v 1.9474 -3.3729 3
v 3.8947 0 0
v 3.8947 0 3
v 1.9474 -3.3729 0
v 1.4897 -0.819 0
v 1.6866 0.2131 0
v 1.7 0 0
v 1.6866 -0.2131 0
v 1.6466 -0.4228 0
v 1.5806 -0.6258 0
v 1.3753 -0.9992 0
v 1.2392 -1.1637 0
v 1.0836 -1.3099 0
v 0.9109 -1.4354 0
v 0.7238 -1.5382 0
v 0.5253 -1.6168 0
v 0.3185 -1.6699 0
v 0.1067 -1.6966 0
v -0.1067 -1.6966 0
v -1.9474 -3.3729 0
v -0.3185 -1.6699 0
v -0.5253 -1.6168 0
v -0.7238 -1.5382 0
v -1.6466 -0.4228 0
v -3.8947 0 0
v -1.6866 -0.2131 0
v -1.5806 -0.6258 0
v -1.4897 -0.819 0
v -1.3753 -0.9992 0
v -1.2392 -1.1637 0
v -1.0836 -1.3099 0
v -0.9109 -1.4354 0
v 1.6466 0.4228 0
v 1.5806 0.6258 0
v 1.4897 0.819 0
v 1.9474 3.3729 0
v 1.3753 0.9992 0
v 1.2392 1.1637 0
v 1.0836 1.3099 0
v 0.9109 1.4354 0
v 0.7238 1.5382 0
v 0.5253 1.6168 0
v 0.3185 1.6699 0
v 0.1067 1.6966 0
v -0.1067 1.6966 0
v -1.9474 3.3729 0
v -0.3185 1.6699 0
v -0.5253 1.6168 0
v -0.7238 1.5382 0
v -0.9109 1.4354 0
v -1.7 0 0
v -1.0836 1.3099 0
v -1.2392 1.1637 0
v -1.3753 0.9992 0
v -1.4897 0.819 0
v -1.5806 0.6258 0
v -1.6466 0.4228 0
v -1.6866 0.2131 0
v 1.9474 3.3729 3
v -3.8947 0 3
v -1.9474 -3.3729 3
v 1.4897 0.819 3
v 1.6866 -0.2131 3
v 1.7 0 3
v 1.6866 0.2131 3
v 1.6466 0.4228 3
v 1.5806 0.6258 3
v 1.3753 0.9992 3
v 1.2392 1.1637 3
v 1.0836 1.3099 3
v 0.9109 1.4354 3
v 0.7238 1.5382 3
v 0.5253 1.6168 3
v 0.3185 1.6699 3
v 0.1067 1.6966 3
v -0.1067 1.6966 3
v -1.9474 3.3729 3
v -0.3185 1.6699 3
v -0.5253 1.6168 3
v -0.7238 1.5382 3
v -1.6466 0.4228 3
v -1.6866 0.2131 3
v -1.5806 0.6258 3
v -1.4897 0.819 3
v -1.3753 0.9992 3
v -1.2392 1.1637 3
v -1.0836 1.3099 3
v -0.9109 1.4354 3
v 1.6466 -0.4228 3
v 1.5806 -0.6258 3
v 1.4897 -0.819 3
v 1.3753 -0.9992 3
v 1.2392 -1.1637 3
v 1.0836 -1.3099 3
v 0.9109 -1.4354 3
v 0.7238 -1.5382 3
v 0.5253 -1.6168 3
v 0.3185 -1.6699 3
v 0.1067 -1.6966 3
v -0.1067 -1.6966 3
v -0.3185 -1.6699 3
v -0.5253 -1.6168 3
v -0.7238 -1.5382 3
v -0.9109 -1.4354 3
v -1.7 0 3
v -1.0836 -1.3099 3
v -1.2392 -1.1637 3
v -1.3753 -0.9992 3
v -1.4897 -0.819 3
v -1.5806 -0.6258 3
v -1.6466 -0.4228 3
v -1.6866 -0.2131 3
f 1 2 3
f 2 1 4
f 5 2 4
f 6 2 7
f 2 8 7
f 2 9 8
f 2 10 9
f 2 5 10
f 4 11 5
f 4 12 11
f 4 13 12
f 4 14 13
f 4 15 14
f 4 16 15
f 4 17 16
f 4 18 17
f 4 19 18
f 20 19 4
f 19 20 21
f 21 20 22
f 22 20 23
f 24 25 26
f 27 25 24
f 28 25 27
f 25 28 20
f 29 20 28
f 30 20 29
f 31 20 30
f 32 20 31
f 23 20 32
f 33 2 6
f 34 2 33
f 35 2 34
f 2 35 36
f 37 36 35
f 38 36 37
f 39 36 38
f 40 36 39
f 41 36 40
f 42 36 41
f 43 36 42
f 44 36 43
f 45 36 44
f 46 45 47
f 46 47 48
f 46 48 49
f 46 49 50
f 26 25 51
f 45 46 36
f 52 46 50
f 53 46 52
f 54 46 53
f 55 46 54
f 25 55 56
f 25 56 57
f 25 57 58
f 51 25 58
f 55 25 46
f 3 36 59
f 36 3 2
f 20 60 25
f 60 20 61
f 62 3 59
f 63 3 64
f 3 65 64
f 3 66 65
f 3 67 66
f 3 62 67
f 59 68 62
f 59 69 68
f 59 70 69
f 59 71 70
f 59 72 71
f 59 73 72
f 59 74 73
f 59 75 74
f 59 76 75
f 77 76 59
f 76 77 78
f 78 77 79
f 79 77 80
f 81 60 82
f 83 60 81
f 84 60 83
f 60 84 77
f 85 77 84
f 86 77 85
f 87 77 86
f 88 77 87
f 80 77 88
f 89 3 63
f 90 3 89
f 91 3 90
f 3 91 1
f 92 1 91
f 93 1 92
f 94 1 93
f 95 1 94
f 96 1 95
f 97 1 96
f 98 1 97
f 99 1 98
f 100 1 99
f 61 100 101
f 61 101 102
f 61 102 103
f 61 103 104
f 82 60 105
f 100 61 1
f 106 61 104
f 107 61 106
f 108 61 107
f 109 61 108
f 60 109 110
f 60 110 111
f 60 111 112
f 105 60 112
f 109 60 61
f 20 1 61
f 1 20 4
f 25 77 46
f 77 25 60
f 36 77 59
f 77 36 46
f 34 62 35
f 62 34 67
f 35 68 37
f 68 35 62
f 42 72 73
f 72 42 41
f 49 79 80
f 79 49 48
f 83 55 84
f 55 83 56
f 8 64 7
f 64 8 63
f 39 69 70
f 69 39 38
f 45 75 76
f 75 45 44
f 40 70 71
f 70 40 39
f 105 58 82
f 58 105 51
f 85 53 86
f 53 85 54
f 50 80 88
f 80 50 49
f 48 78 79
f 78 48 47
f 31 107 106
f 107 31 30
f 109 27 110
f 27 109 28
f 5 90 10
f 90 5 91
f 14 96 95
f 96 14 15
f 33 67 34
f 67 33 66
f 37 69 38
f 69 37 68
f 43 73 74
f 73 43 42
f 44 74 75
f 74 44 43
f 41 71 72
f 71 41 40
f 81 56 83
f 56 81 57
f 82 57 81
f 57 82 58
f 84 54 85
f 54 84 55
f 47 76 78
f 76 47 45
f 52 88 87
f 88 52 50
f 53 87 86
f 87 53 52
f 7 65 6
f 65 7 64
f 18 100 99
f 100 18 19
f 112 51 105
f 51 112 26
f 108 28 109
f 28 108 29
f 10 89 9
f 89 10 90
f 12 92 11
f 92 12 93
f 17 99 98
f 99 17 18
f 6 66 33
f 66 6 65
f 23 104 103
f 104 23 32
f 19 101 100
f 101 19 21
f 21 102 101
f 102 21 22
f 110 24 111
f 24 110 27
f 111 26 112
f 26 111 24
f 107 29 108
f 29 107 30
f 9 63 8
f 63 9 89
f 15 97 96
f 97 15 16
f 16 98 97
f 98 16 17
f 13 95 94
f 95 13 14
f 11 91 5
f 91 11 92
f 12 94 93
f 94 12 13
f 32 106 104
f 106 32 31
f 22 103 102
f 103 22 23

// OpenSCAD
// Generated by SolidPython 1.1.3 on 2023-03-13 20:55:07
$fn = 50;


difference() {
	union() {
		translate(v = [0, 0, 0]) {
			rotate(a = [0, 0, 0]) {
				translate(v = [0, 0, 0]) {
					rotate(a = [0, 0, 0]) {
						linear_extrude(height = 3) {
							polygon(points = [[3.8947500000, 0.0000000000], [1.9473750000, 3.3729524414], [-1.9473750000, 3.3729524414], [-3.8947500000, 0.0000000000], [-1.9473750000, -3.3729524414], [1.9473750000, -3.3729524414]]);
						}
					}
				}
			}
		}
	}
	union() {
		translate(v = [0, 0, -10]) {
			rotate(a = [0, 0, 0]) {
				cylinder(h = 20, r = 1.7000000000);
			}
		}
	}
}
/***********************************************
*********      SolidPython code:      **********
************************************************
 
from solid import *
import os
import subprocess

import oomB

import opsc_library_gen

mode = "laser"
#mode = "3d_print"

defined_objects = {}

radius_dict = {}
countersunk_dict = {}


def set_mode(m):
    global mode
    mode = m
    radius_dict['M6'] = 6.5/2
    radius_dict['M3'] = 3.3/2
    if mode == "laser":
        radius_dict['M6'] = 6/2
        radius_dict['M3'] = 3/2

    countersunk_dict['M3'] = {}
    countersunk_dict['M3']['little_rad'] = radius_dict['M3']
    countersunk_dict['M3']['big_rad'] = (5.5+0.6)/2
    if mode == "laser":
        countersunk_dict['M3']['big_rad'] = (4.75+0.6)/2
        countersunk_dict['M3']['little_rad'] = (4.75+0.6)/2

    countersunk_dict['M3']['height'] = 1.7


def opsc_make_object(filename, objects, save_type="none",resolution=50, layers = 1, tilediff = 200, mode="laser", overwrite=True):
    if overwrite or not os.path.exists(filename):
        set_mode(mode)
        save_type = save_type.lower()
        os.makedirs(os.path.dirname(filename), exist_ok=True)
        final_object = opsc_get_object(objects, mode = mode)
        # Save the final object to the specified filename    
        scad_render_to_file(final_object, filename, file_header='$fn = %s;' % resolution, include_orig_code=True)
        if save_type == "all":
            saveToAll(filename)
        elif save_type == "dxf":
            saveToDxf(filename)
        if mode == "laser":
            filename_laser = filename.replace(".scad","-flat.scad")
            scad_render_to_file(getLaser(final_object, layers=layers, tilediff=tilediff), filename_laser, file_header='$fn = %s;' % resolution, include_orig_code=True)
            if save_type == "all":
                saveToAll(filename_laser)
            elif save_type == "dxf":
                saveToDxf(filename_laser)


def opsc_get_object(objects, mode = "laser"):
    # Create the solidpython objects only include the positive objects and if they don't have inclusion or their inclusion is either all or mode
    # Initialize an empty list to store the results
    positive_objects = []

    # Iterate over the "objects" list
    for obj in objects:
        # Check if the current object has a "type" key with a value of "positive"
        if obj['type'] == 'positive':
            # Check if the current object has an "inclusion" key and its value matches "mode",
            # or if the current object does not have an "inclusion" key at all
            if not 'inclusion' in obj or obj['inclusion'] == "all" or obj['inclusion'] == mode:
                # Call the "get_opsc_item" function with the current object as an argument
                opsc_item = get_opsc_item(obj)
                # Add the result to the "positive_objects" list
                positive_objects.append(opsc_item)
# Initialize an empty list to store the results
    negative_objects = []

    # Iterate over the "objects" list
    for obj in objects:
        # Check if the current object has a "type" key with a value of "negative"
        if obj['type'] == 'negative':
            # Check if the current object has an "inclusion" key and its value matches "mode",
            # or if the current object does not have an "inclusion" key at all
            if not 'inclusion' in obj or obj['inclusion'] == "all" or obj['inclusion'] == mode:
                # Call the "get_opsc_item" function with the current object as an argument
                opsc_item = get_opsc_item(obj)
                # Add the result to the "negative_objects" list
                negative_objects.append(opsc_item)
    
    #positive_objects = [get_opsc_item(obj) for obj in objects if obj['type'] == 'positive']
    #negative_objects = [get_opsc_item(obj) for obj in objects if obj['type'] == 'negative']
    # Union the positive objects
    positive_object = union()(*positive_objects)
    # Union the negative objects
    negative_object = union()(*negative_objects)
    # Create the final object by subtracting the negative objects from the positive objects
    return difference()(positive_object, negative_object)

def get_opsc_item(params):
    # A dictionary to map radius string values to numerical values
    #radius_dict = {'small': 5, 'medium': 10, 'large': 15}
    # An array of function names for basic shapes
    basic_shapes = ['cube', 'sphere', 'cylinder']
    
    # An array of function names for other shapes
    other_shapes = ['hole', 'slot', 'rounded_rectangle', 'countersunk', 'polyg']
    


    # Convert radius to r if present, and remove radius from the params dictionary
    if 'radius' in params:
        if isinstance(params['radius'], str):
            # Use the radius_dict to map the radius string value to a numerical value
            params['r'] = radius_dict[params['radius']]
        else:
            params['r'] = params['radius']
        del params['radius']
    

    # Check if the object type is a basic shape
    if params['shape'] in basic_shapes:
        # Remove shape and unexpected dictionary values
        allowed_keys = {'size', 'r', 'r1', 'r2', 'd', 'h', 'rw', 'rh', 'dw', 'dh'}
        shape_params = {k: v for k, v in params.items() if k in allowed_keys}

        #params['m'] = "#"
        ###split for adding modifier
        try:
            m = params['m']
            func = globals()[params['shape']]
            return_value = get_opsc_transform(params,func(**shape_params))
            return_value = (return_value).set_modifier(m)
            return return_value
        except KeyError as e:
            return get_opsc_transform(params,globals()[params['shape']](**shape_params))
        
    elif params['shape'] == 'polygon':
        # Remove shape and unexpected dictionary values
        h  = params['height']
        allowed_keys = {'points'}
        shape_params = {k: v for k, v in params.items() if k in allowed_keys}

        # Call the corresponding function for the shape parameter, using ** notation to pass the shape_params dictionary as keyword arguments
        params["rot"] = [0,0,0]        
        try:
            m = params['m']
            func = globals()[params['shape']]
            return_value = get_opsc_transform(params,linear_extrude(h)(globals()[params['shape']](**shape_params)))
            return_value = (return_value).set_modifier(m)
            return return_value
        except KeyError as e:
            return_value = get_opsc_transform(params,linear_extrude(h)(globals()[params['shape']](**shape_params)))
            return_value = (return_value)
            return return_value


    # If the object type is not a basic shape, check if it's a defined object or one of the other shapes
    elif params['shape'] in other_shapes:
        # Call the corresponding function for the shape parameter, passing the params dictionary as an argument
        p2 = copy.deepcopy(params)
        p2["pos"] = [0,0,0]
        return get_opsc_transform(params,globals()[params['shape']](p2))
    
    # If the object is not a basic shape or a defined object, try to import it from a .scad file
    else:
        obj = defined_objects[params['shape']]
        return get_opsc_transform(params,obj)

def get_opsc_transform(params, solid_obj):
    # Rotate the object based on the 'rot' field in the params dictionary, or the 'rotX', 'rotY', and 'rotZ' fields if 'rot' is not present
    rot = params.get('rot', [])
    if rot:
        rotX, rotY, rotZ = rot
    else:
        rotX = params.get('rotX', 0)
        rotY = params.get('rotY', 0)
        rotZ = params.get('rotZ', 0)
    solid_obj = rotate([rotX, rotY, rotZ])(solid_obj)

    # Translate the object based on the 'pos' field in the params dictionary, or the 'x', 'y', and 'z' fields if 'pos' is not present
    pos = params.get('pos', [])
    if pos:
        x, y, z = pos
    else:
        x = params.get('x', 0)
        y = params.get('y', 0)
        z = params.get('z', 0)
    solid_obj = translate([x, y, z])(solid_obj)
    return solid_obj


import random

def opsc_easy_array(type, shape, repeats, pos_start, shift_arr, **kwargs):
    for i in range(0,3):
        repeats.append(1)
        pos_start.append(0)
        shift_arr.append(0)
    return_objects = []

    for x in range(0,repeats[0]):
        for y in range(0,repeats[1]):
            for z in range(0,repeats[2]):
                return_objects.append(opsc_easy(type, shape, pos=[pos_start[0]+x*shift_arr[0],pos_start[1]+y*shift_arr[1],pos_start[2]+z*shift_arr[2]], **kwargs))
    return return_objects                



def opsc_easy(type, shape, **kwargs):
    obj = {
        'type': type,
        'shape': shape
    }
    for param in ['size', 'r', 'r1', 'r2', 'd', 'h', 'rw', 'rh', 'dw', 'dh', 'pos', 'x', 'y', 'z', 'rot', 'rotX', 'rotY', 'rotZ', "w", "inclusion", 'sides', 'height', "m"]:
        if param in kwargs:
            obj[param] = kwargs[param]
    return obj

def hole(params):
    p2 = copy.deepcopy(params)  
    # Check if the radius is a string and replace it with the corresponding value from the dictionary
    if isinstance(p2['r'], str):
        p2['r'] = radius_dict[p2['r']]
    
    # Set the height to 100 if not specified
    if 'h' not in p2:
        p2['h'] = 100
        p2["pos"] = [0,0,-50]
    p2["center"] = True
    # Create the cylinder object
    p2["shape"] = "cylinder"
    p2["type"] = "positive"

    return get_opsc_item(p2)

import copy

def countersunk(params):
    p2 = copy.deepcopy(params)
    counter_rad = p2['r']
    p2['r'] = radius_dict[p2['r']]
    hp = copy.deepcopy(p2)
    hp["type"] = "positive"
    hp["shape"] = "hole"
    del hp["rot"]
    hol = get_opsc_item(hp)
    
    cp = copy.deepcopy(p2)
    cp["h"] = countersunk_dict[counter_rad]["height"]
    cp["r2"] = countersunk_dict[counter_rad]["little_rad"]
    cp["r1"] = countersunk_dict[counter_rad]["big_rad"]
    del cp["r"]
    del cp["rot"]
    cp["type"] = "positive"
    cp["shape"] = "cylinder"
    cp["pos"] = [0,0,0]

    top = get_opsc_item(cp)
    return union()(hol,top)



def slot(params):  
    p2 = copy.deepcopy(params) 
    if isinstance(p2['r'], str):
        p2['r'] = radius_dict[p2['r']]
    p2["type"] = "positive"
    p2["shape"] = "hole"
    del p2["rot"]
    p2["pos"] = [0,0,0]
    left = copy.deepcopy(p2)
    right = copy.deepcopy(p2)
    left["pos"][0] = p2["w"] / 2 - p2["r"] 
    
    right["pos"][0] = -p2["w"] / 2 + p2["r"] 
    pass
    leftObj = get_opsc_item(left)
    rightObj = get_opsc_item(right)
    return hull()(leftObj, rightObj)

def rounded_rectangle(params):   
    p2 = copy.deepcopy(params) 
    p2["h"] = p2["size"][2]
    p2["pos"] = p2.get("pos", [0, 0, 0]) 
    p2["type"] = "positive"
    p2["shape"] = "hole"
    p2["pos"] = [0,0,0]
    
    if 'rot' in p2:
        del p2["rot"]   
    if 'r' not in p2:
        p2["r"] = 5 
    tl = copy.deepcopy(p2)
    tr = copy.deepcopy(p2)
    bl = copy.deepcopy(p2)
    br = copy.deepcopy(p2)
    tl["pos"][0] = -(p2["size"][0] - p2["r"]*2)/2
    tl["pos"][1] = (p2["size"][1] - p2["r"]*2)/2
    tr["pos"][0] = (p2["size"][0] - p2["r"]*2)/2
    tr["pos"][1] = (p2["size"][1] - p2["r"]*2)/2
    bl["pos"][0] = -(p2["size"][0] - p2["r"]*2)/2
    bl["pos"][1] = -(p2["size"][1] - p2["r"]*2)/2
    br["pos"][0] = (p2["size"][0] - p2["r"]*2)/2
    br["pos"][1] = -(p2["size"][1] - p2["r"]*2)/2
    del tl["size"]
    del tr["size"]
    del bl["size"]
    del br["size"]
    tlo = get_opsc_item(tl)
    tro = get_opsc_item(tr)
    blo = get_opsc_item(bl)
    bro = get_opsc_item(br)    
    return hull()(tlo, tro, blo, bro)



def polyg(params):
    p2 = copy.deepcopy(params) 
    p2["type"] = "positive"
    p2["shape"] = "polygon"
    p2["pos"] = [0,0,0]
    sides = p2["sides"]
    radius = p2["r"]    
    angles = [i * 360 / sides for i in range(sides)]
    points = regular_polygon(sides, radius)
    
    p2["points"] = points
    return get_opsc_item(p2)

import math

def regular_polygon(num_sides, radius):
    # Calculate the angle between each side
    angle = 2 * math.pi / num_sides

    # Calculate the points of the polygon
    points = []
    for i in range(num_sides):
        x = radius * math.cos(i * angle)
        y = radius * math.sin(i * angle)
        points.append((x, y))
    return points

def import_scad_object(filename):
    # Import the .scad file and convert it to a solidpython object
    #filename = "parts"
    obj = import_scad(filename)
    return obj.main()



import os
import solid as solidpython

# A dictionary to store the defined objects


def load_scad_objects():
    opsc_library_gen.gen_library(defined_objects)

import random

def test(num_objects):
    objects = []
    for i in range(num_objects):
        # Choose a random shape
        #shape = random.choice(['cube', 'sphere', 'cylinder', 'hole', 'slot', "rounded_rectangle"])
        shape = random.choice(["rounded_rectangle"])

        # Choose a random type
        type = random.choice(['positive', 'negative'])
        
        # Create an empty object dictionary
        obj = {'shape': shape, 'type': type}
        
        # Set shape-specific parameters
        if obj['shape'] in ['cube']:
            obj['size'] =  [random.uniform(5, 15), random.uniform(5, 15), random.uniform(5, 15)]
        if obj['shape'] in ['rounded_rectangle']:
            obj['size'] =  [random.uniform(5, 15), random.uniform(5, 15), random.uniform(5, 15)]
            obj['r'] = random.uniform(0.5, 5)
        elif obj['shape'] == 'sphere':
            obj['r'] = random.uniform(5, 15)
        elif obj['shape'] in ['cylinder', 'hole']:
            obj['r'] = random.uniform(0.5, 5)
            obj['h'] = random.uniform(5, 15)
        elif obj['shape'] == 'slot':
            obj['r'] = random.uniform(0.5, 5)
            obj['h'] = random.uniform(5, 15)
            obj['w'] = random.uniform(5, 15)
        
        # Set a random position and rotation
        obj['pos'] = [random.uniform(-20, 20), random.uniform(-20, 20), random.uniform(-20, 20)]
        obj['rot'] = [random.uniform(-180, 180), random.uniform(-180, 180), random.uniform(-180, 180)]
        
        # Add the object to the list
        objects.append(obj)
    return objects

####### old file saving
def saveToAll(fileIn):
    saveToStl(fileIn)
    saveToDxf(fileIn)
    saveToPng(fileIn)
    saveToSvg(fileIn)

def saveToDxf(fileIn, fileOut="", copy_to_laser=True):
    if fileOut == "":
        fileOut = fileIn.replace(".scad",".dxf")
    saveToFile(fileIn, fileOut)


    
def saveToPng(fileIn, fileOut="",extra="--render"):
    if fileOut == "":
        fileOut = fileIn.replace(".scad",".png")
    saveToFile(fileIn, fileOut)

def saveToStl(fileIn, fileOut=""):
    if fileOut == "":
        fileOut = fileIn.replace(".scad",".stl")
    saveToFile(fileIn, fileOut)
    
def saveToSvg(fileIn, fileOut=""):
    if fileOut == "":
        fileOut = fileIn.replace(".scad",".svg")
    saveToFile(fileIn, fileOut)

def saveToFile(fileIn, fileOut,extra=""):
    #extra = extra + " --colorscheme Tomorrow"

    launchStr = 'openscad -o "' + fileOut + '"' + extra + ' "' + fileIn + '"'
    if ".png" in fileOut:
        launchStr = launchStr + " --render"
    print("            saveToFile launch string: " + launchStr)
    subprocess.run(launchStr)
    x=0

def getLaser(final_object,start=1.5,layers=1,thickness=3,tilediff=200):
        rv= []

        for x in range(layers):
            rv.append(translate([0,x*tilediff,0])(
                    projection()(
                        intersection()(translate([-500,-500,start+x*thickness])(cube(size=[1000,1000,0.1])),
                            final_object
                        )
                    )
            )
            )
            
        return union()(rv)

set_mode("laser")
load_scad_objects() 
 
************************************************/
